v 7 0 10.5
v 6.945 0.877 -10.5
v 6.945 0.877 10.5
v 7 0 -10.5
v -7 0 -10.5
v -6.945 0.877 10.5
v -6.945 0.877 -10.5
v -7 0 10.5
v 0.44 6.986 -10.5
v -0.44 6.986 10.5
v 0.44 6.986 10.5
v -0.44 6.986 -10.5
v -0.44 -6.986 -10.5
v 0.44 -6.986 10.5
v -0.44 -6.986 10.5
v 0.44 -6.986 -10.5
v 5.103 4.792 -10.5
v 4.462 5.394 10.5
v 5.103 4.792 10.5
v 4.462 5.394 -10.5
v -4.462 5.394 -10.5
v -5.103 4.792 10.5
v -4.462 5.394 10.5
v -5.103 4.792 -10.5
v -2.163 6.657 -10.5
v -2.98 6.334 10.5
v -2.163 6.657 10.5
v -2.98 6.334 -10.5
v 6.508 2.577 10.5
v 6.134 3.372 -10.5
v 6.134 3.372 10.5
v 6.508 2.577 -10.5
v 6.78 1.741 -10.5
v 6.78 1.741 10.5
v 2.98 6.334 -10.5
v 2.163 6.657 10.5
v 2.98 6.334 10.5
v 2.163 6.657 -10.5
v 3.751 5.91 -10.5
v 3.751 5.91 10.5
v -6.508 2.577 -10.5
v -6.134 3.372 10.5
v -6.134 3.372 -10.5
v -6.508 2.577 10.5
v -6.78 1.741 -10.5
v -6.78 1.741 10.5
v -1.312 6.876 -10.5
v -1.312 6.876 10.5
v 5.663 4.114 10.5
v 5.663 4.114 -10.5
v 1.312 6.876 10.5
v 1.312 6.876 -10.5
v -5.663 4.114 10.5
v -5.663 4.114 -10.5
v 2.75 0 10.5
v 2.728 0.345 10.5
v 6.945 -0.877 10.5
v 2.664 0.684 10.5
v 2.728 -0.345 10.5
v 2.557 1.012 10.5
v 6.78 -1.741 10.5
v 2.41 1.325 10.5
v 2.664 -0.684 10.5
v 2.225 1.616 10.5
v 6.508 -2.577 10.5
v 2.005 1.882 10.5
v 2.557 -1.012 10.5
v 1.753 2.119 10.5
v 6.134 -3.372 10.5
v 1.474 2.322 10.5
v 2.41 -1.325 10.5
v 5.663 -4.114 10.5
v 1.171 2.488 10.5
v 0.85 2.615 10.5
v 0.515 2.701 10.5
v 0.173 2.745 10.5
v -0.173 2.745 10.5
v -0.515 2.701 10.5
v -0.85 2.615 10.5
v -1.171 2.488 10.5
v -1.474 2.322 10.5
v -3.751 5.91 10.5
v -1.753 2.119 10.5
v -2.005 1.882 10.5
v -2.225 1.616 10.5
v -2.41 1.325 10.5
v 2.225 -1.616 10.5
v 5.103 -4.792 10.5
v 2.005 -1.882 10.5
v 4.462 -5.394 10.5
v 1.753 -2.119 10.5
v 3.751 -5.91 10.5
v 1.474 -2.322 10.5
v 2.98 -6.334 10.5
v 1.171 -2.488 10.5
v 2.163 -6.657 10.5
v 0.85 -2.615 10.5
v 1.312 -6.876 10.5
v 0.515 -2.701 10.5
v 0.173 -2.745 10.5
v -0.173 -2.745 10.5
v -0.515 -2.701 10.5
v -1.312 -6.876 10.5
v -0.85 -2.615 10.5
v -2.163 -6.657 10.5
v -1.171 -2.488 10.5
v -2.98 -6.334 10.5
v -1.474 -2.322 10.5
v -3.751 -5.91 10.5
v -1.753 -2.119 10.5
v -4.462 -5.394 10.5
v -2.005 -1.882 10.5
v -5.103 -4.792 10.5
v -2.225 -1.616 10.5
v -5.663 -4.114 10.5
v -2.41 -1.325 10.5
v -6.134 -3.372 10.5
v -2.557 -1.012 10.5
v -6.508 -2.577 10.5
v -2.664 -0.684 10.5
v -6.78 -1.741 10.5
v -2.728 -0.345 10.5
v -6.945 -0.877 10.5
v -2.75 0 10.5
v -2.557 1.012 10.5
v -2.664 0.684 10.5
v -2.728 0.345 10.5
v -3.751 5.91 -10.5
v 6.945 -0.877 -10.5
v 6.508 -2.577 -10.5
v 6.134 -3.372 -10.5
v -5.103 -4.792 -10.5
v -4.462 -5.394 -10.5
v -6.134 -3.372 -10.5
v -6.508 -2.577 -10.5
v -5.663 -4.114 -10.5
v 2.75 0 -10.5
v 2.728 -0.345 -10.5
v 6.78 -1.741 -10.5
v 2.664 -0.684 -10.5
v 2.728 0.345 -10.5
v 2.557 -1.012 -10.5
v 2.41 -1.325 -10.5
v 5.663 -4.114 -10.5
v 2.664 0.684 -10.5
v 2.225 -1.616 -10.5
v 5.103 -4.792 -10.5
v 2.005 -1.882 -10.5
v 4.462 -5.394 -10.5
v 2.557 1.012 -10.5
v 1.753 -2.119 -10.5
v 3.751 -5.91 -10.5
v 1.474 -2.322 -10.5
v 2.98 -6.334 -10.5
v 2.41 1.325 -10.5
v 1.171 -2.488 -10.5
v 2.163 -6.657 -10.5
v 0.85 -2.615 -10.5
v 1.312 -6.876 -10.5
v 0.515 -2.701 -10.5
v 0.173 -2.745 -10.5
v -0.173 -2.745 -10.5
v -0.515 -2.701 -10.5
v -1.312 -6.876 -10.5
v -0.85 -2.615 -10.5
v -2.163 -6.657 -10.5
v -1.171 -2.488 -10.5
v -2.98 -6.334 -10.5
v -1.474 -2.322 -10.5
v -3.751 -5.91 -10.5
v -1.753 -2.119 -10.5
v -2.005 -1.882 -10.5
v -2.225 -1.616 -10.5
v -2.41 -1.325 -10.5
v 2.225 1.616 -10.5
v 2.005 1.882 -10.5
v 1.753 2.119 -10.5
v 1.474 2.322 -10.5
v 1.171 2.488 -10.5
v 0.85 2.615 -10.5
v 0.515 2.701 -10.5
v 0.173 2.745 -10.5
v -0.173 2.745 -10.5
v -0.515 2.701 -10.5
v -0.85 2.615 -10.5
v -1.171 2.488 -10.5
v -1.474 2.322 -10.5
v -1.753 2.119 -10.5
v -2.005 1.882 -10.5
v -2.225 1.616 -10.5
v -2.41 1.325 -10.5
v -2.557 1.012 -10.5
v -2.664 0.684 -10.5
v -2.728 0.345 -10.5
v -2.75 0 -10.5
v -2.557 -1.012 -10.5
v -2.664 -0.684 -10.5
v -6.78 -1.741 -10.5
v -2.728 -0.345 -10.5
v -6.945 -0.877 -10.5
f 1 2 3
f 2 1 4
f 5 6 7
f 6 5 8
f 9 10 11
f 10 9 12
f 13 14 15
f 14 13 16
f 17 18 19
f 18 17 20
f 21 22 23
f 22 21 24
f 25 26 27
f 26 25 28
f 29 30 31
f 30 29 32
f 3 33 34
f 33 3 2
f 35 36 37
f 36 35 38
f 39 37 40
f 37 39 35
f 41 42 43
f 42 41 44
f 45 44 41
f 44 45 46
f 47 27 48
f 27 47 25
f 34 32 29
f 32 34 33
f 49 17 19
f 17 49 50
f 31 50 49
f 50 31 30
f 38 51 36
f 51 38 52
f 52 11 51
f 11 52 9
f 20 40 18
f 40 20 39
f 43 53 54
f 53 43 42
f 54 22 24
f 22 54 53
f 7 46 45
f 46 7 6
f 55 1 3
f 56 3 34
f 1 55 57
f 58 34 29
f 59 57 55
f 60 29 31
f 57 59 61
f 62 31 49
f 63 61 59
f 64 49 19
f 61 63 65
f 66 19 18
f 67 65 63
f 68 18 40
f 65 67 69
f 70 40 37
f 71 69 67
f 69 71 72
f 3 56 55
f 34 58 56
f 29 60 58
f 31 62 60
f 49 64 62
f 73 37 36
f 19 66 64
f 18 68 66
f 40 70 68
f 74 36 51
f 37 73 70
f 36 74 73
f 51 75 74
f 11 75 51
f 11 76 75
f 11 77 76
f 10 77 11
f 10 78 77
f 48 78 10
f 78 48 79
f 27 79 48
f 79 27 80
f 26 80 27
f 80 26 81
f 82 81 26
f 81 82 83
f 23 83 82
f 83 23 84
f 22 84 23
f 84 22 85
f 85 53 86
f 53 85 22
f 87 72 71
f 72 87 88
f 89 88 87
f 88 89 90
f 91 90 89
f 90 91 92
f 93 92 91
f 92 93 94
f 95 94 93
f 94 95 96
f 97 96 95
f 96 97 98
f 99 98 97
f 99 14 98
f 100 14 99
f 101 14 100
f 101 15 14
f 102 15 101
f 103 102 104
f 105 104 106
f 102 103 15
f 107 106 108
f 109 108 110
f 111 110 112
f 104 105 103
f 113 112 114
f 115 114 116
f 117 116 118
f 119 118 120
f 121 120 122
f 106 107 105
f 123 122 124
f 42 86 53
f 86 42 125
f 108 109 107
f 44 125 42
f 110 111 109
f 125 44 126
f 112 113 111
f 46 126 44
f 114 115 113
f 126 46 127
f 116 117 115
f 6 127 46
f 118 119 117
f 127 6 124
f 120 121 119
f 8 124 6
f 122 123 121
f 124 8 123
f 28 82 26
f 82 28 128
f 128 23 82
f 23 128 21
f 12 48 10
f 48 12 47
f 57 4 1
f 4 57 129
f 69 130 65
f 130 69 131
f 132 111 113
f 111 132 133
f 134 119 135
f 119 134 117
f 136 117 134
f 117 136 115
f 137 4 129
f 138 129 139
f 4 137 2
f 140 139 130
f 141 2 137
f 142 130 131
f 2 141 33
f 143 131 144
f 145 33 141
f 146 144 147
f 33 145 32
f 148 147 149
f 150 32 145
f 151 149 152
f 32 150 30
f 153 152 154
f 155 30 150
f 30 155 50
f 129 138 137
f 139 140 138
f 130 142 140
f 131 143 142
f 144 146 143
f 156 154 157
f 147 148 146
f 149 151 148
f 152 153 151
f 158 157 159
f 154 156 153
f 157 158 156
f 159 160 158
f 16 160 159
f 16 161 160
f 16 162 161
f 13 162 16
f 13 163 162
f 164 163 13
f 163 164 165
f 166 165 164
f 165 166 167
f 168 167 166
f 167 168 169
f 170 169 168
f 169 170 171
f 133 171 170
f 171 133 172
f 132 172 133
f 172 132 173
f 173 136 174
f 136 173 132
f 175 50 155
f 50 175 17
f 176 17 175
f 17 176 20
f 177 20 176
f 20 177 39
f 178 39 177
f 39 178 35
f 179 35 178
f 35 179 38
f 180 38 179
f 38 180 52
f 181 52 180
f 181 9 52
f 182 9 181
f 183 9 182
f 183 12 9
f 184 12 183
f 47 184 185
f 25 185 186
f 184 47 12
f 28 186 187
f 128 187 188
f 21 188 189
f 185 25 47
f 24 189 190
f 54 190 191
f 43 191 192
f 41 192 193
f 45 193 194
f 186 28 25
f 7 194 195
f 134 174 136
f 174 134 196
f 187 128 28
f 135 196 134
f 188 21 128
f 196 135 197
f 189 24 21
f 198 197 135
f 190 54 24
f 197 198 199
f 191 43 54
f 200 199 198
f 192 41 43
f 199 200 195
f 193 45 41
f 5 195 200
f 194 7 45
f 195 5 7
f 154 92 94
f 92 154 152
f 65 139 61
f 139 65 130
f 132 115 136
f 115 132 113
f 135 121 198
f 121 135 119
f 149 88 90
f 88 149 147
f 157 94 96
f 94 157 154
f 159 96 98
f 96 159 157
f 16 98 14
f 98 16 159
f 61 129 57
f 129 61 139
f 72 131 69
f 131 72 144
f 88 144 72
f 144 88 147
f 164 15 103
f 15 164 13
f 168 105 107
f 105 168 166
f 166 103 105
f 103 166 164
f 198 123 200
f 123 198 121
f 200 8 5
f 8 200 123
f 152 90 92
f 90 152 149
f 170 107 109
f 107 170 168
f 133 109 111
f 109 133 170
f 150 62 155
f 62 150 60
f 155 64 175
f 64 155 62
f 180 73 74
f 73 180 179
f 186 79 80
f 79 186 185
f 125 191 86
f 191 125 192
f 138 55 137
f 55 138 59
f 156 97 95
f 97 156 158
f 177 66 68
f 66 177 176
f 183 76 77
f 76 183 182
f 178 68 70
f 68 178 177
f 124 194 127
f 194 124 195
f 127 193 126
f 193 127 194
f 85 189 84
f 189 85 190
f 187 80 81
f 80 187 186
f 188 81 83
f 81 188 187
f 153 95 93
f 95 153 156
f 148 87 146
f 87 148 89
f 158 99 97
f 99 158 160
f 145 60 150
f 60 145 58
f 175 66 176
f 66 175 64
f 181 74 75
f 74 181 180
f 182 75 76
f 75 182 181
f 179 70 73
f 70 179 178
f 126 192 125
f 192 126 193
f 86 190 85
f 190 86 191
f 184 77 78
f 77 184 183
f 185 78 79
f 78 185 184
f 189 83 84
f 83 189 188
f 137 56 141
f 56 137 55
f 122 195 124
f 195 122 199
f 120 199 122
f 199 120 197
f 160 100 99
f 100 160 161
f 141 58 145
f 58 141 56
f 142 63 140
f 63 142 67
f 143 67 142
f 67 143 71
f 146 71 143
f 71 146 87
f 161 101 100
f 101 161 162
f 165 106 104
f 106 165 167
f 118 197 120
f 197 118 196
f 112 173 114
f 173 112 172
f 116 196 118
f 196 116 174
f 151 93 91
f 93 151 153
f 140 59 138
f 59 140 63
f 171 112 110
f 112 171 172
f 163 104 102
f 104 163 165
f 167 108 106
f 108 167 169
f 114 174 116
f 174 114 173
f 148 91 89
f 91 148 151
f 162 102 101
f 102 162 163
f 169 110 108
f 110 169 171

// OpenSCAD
$fn = 50;


difference() {
	union() {
		translate(v = [0, 0, -10.5000000000]) {
			cylinder(h = 21, r = 7.0000000000);
		}
	}
	union() {
		translate(v = [0, 0, -100.0000000000]) {
			cylinder(h = 200, r = 2.7500000000);
		}
	}
}
